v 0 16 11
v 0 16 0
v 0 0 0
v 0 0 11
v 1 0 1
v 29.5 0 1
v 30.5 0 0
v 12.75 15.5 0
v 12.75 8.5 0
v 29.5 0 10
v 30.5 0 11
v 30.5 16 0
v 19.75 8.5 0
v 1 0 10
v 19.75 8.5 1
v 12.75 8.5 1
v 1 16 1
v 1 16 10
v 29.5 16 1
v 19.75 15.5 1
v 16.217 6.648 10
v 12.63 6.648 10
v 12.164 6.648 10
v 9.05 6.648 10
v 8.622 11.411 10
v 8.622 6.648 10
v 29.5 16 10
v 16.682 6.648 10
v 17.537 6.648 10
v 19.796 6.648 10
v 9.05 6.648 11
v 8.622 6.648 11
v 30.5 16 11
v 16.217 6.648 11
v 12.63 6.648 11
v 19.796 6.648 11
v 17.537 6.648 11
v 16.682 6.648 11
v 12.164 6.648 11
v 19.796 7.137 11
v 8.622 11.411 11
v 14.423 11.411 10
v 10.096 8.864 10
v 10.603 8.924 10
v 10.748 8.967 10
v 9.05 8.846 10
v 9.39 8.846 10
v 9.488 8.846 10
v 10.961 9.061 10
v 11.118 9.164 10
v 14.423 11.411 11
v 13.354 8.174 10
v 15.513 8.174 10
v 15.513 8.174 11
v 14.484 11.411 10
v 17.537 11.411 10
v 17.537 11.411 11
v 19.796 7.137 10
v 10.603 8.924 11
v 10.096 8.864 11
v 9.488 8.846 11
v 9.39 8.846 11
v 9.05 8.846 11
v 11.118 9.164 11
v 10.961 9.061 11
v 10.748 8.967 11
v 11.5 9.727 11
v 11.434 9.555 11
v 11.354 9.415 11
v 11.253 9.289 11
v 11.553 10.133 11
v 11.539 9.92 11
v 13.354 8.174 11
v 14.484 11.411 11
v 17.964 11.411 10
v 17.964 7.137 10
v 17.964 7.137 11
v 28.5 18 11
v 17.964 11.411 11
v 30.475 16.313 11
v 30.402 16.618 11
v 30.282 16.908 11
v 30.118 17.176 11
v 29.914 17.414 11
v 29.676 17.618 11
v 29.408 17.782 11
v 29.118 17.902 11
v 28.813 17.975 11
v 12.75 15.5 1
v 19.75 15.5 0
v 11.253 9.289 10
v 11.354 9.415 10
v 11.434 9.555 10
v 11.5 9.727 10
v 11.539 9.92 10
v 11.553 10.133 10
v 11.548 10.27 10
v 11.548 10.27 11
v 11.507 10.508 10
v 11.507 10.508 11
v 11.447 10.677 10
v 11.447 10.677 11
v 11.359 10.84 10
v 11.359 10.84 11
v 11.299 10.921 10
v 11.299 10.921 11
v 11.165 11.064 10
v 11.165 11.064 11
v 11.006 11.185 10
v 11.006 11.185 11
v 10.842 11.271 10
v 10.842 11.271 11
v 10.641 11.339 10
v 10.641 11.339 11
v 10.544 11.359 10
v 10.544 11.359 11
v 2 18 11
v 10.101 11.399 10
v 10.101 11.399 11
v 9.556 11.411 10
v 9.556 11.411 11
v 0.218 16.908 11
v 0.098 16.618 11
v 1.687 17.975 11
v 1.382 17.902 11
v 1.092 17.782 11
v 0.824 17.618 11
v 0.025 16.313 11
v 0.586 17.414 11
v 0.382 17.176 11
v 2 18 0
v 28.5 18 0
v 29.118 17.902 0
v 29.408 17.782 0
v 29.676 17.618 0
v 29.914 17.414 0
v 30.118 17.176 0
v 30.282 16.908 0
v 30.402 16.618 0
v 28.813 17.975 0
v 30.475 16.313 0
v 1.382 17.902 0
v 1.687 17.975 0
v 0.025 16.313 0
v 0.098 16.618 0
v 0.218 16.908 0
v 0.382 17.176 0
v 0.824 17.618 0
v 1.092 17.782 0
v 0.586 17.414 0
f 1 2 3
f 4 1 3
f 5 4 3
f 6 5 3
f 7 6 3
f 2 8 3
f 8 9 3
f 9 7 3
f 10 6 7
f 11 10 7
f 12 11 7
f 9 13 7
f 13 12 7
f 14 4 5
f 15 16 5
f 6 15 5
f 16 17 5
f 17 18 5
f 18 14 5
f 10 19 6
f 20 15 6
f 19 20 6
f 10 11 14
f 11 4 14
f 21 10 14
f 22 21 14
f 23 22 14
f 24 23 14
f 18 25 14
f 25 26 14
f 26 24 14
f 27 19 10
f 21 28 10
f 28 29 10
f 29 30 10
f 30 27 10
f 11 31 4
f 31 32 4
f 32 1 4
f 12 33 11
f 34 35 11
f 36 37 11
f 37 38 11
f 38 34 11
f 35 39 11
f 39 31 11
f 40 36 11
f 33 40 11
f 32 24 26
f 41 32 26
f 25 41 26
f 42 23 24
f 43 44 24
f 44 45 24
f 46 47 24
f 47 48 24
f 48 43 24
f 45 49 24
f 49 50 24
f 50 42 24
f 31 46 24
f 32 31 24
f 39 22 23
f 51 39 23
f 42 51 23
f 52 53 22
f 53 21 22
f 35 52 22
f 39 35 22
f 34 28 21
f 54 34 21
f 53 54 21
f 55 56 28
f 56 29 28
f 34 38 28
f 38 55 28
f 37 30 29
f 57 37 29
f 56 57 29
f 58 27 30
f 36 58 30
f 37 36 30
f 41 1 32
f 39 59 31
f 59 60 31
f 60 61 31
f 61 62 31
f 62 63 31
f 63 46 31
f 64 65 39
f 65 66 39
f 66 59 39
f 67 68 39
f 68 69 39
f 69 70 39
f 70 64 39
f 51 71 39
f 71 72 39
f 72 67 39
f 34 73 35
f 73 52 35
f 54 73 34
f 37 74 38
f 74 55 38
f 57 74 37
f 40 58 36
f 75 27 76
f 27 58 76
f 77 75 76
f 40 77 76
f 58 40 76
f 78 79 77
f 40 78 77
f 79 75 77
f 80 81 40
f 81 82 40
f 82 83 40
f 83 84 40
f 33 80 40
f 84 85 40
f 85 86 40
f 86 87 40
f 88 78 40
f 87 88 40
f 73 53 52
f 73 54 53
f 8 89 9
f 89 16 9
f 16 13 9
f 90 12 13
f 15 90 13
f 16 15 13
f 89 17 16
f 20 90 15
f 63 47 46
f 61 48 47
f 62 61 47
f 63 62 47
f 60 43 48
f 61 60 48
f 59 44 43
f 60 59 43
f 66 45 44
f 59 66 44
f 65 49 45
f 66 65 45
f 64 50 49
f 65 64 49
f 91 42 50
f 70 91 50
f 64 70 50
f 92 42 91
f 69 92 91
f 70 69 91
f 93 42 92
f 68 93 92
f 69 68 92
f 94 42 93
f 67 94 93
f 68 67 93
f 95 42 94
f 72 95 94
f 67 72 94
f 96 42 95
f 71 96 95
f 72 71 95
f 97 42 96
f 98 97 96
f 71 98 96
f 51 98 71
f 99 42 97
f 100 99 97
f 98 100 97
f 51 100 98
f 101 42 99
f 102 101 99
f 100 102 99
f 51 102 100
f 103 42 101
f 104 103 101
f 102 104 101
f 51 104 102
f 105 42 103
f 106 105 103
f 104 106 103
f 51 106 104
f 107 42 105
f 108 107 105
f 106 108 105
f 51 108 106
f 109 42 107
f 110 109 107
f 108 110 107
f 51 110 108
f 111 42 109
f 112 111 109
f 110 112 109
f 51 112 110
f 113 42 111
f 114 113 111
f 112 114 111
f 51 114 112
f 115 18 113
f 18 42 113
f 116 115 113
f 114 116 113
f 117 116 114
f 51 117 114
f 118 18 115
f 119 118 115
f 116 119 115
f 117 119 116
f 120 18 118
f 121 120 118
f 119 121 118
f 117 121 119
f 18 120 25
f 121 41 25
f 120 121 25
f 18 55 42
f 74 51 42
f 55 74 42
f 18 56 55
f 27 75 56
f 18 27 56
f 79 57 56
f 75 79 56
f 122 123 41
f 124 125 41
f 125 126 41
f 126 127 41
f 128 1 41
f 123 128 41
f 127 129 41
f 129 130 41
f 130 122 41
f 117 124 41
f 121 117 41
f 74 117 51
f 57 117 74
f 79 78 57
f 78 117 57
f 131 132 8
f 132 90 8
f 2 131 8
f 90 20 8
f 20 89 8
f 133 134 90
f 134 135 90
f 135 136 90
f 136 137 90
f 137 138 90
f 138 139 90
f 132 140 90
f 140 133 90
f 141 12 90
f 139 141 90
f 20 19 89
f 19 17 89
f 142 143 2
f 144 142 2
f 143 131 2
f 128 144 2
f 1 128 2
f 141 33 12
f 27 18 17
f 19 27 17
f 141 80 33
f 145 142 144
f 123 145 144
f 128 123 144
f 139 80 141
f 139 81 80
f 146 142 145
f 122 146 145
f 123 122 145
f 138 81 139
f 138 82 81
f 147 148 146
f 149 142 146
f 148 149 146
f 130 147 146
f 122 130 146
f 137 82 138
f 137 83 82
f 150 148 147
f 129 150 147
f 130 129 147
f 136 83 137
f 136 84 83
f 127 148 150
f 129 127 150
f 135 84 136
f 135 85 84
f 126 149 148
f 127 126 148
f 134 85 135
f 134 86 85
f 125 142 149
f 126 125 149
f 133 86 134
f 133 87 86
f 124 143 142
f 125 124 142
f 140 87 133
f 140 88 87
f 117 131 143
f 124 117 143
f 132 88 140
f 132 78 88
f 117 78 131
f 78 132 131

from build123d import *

# Parameters (mm, degrees)
SKETCH1_W           = 30.5
SKETCH1_H           = 18
BOSS_EXTRUDE1_DEPTH = 11
SKETCH3_W           = 28.5
SKETCH3_H           = 9
CUT_EXTRUDE2_DEPTH  = 16
SKETCH4_W           = 7
SKETCH4_H           = 7
CUT_EXTRUDE4_DEPTH  = 5
FILLET4_R           = 2
FILLET5_R           = 2
WRAP2_START         = -1
WRAP2_DEPTH         = 1


# Read off the part's stored shape, not the designer's step: Wrap2
with BuildPart() as part:
    # Sketch1 → Boss-Extrude1 (new body)
    with BuildSketch(Plane.XY):
        with Locations((15.25, 9)):
            Rectangle(SKETCH1_W, SKETCH1_H)
    extrude(amount=BOSS_EXTRUDE1_DEPTH)

    # Sketch3 → Cut-Extrude2 (cut)
    with BuildSketch(Plane(origin=(0, 0, 0), x_dir=(-1, 0, 0), z_dir=(0, -1, 0))):
        with Locations((-15.25, -5.5)):
            Rectangle(SKETCH3_W, SKETCH3_H)
    extrude(amount=-CUT_EXTRUDE2_DEPTH, mode=Mode.SUBTRACT)

    # Sketch4 → Cut-Extrude4 (cut)
    with BuildSketch(Plane(origin=(0, 0, 0), x_dir=(-1, 0, 0), z_dir=(0, 0, -1))):
        with Locations((-16.25, 12)):
            Rectangle(SKETCH4_W, SKETCH4_H)
    extrude(amount=-CUT_EXTRUDE4_DEPTH, mode=Mode.SUBTRACT)

    # Fillet4
    fillet4_edges = [part.edges().sort_by_distance(p)[0] for p in [
        (30.5, 18, 5.5),
    ]]
    fillet(fillet4_edges, radius=FILLET4_R)

    # Fillet5
    fillet5_edges = [part.edges().sort_by_distance(p)[0] for p in [
        (0, 18, 5.5),
    ]]
    fillet(fillet5_edges, radius=FILLET5_R)

    # Wrap2 outline → Wrap2 (cut)
    with BuildSketch(Plane.XY.offset(11).offset(WRAP2_START)):
        with BuildLine():
            add(Edge.make_bspline(
                [(9.556268529, 11.410544446), (9.620509083, 11.41047383), (9.743596838, 11.410338527), (9.920101968, 11.406236319), (10.080407352, 11.400757142), (10.224167335, 11.39316178), (10.35182424, 11.384185705), (10.462800423, 11.371596323), (10.557968176, 11.358451421), (10.61499088, 11.345087293), (10.640996594, 11.338992463)],
                knots=[0, 0, 0, 0, 0.176955752, 0.33905508, 0.486318225, 0.618780923, 0.735618828, 0.838742477, 0.926457068, 1, 1, 1, 1], degree=3))
            Line((9.556268529, 11.410544446), (8.622276642, 11.410544446))
            Line((8.622276642, 11.410544446), (8.622276642, 6.648044446))
            Line((8.622276642, 6.648044446), (9.049680488, 6.648044446))
            Line((9.049680488, 6.648044446), (9.049680488, 8.846121369))
            Line((9.049680488, 8.846121369), (9.390267928, 8.846121369))
            add(Edge.make_bspline(
                [(10.602835536, 8.924351537), (10.572998699, 8.918006552), (10.507609537, 8.904101149), (10.399918904, 8.888577499), (10.274535361, 8.875327406), (10.131630045, 8.865392644), (9.971331228, 8.856887679), (9.793552195, 8.850127522), (9.597943969, 8.846412971), (9.461503455, 8.846221392), (9.390267928, 8.846121369)],
                knots=[0, 0, 0, 0, 0.075173117, 0.164746258, 0.268016881, 0.385911876, 0.517789479, 0.663690977, 0.824413221, 1, 1, 1, 1], degree=3))
            add(Edge.make_bspline(
                [(11.553045872, 10.13310304), (11.552472434, 10.093944708), (11.551350462, 10.017328787), (11.537884445, 9.905242957), (11.519745863, 9.798129719), (11.491855231, 9.696226574), (11.45532594, 9.600138686), (11.412474254, 9.508397653), (11.360789522, 9.422564242), (11.301401379, 9.342326843), (11.23533653, 9.267610141), (11.162874497, 9.198955581), (11.084307817, 9.136765035), (10.999886179, 9.080899081), (10.908786564, 9.032653215), (10.812390633, 8.989440597), (10.709860517, 8.953148904), (10.638909454, 8.934057999), (10.602835536, 8.924351537)],
                knots=[0, 0, 0, 0, 0.070118894, 0.137192353, 0.202016181, 0.264631407, 0.326116547, 0.386010305, 0.445811847, 0.505297697, 0.564633278, 0.624282625, 0.683902032, 0.743952771, 0.805387731, 0.868388031, 0.933084028, 1, 1, 1, 1], degree=3))
            add(Edge.make_bspline(
                [(10.640996594, 11.338992463), (10.673917081, 11.329981881), (10.738982325, 11.312173041), (10.832736958, 11.276503653), (10.921937012, 11.234209707), (11.006888526, 11.186007846), (11.086547574, 11.129829989), (11.162102652, 11.067953387), (11.232886982, 10.998949432), (11.298502519, 10.923592068), (11.358761475, 10.843146353), (11.410645079, 10.756411391), (11.454088913, 10.664847153), (11.491349722, 10.568517329), (11.518167298, 10.466612996), (11.538369686, 10.35984222), (11.551192551, 10.248216445), (11.55242068, 10.171934982), (11.553045872, 10.13310304)],
                knots=[0, 0, 0, 0, 0.062481339, 0.123490383, 0.183411094, 0.243153221, 0.302126735, 0.361709671, 0.421842292, 0.482931901, 0.544552254, 0.60568072, 0.667679738, 0.729984388, 0.794550921, 0.86034562, 0.928907356, 1, 1, 1, 1], degree=3))
        make_face()
        Polygon((19.795834334, 7.136505985), (17.964103565, 7.136505985), (17.964103565, 11.410544446), (17.536699719, 11.410544446), (17.536699719, 6.648044446), (19.795834334, 6.648044446), align=None)
        Polygon((15.513209634, 8.174486754), (16.217281149, 6.648044446), (16.681892026, 6.648044446), (14.483815103, 11.410544446), (14.422757411, 11.410544446), (12.163622795, 6.648044446), (12.630141726, 6.648044446), (13.354247795, 8.174486754), align=None)
    extrude(amount=WRAP2_DEPTH, mode=Mode.SUBTRACT)


solid = part.part
